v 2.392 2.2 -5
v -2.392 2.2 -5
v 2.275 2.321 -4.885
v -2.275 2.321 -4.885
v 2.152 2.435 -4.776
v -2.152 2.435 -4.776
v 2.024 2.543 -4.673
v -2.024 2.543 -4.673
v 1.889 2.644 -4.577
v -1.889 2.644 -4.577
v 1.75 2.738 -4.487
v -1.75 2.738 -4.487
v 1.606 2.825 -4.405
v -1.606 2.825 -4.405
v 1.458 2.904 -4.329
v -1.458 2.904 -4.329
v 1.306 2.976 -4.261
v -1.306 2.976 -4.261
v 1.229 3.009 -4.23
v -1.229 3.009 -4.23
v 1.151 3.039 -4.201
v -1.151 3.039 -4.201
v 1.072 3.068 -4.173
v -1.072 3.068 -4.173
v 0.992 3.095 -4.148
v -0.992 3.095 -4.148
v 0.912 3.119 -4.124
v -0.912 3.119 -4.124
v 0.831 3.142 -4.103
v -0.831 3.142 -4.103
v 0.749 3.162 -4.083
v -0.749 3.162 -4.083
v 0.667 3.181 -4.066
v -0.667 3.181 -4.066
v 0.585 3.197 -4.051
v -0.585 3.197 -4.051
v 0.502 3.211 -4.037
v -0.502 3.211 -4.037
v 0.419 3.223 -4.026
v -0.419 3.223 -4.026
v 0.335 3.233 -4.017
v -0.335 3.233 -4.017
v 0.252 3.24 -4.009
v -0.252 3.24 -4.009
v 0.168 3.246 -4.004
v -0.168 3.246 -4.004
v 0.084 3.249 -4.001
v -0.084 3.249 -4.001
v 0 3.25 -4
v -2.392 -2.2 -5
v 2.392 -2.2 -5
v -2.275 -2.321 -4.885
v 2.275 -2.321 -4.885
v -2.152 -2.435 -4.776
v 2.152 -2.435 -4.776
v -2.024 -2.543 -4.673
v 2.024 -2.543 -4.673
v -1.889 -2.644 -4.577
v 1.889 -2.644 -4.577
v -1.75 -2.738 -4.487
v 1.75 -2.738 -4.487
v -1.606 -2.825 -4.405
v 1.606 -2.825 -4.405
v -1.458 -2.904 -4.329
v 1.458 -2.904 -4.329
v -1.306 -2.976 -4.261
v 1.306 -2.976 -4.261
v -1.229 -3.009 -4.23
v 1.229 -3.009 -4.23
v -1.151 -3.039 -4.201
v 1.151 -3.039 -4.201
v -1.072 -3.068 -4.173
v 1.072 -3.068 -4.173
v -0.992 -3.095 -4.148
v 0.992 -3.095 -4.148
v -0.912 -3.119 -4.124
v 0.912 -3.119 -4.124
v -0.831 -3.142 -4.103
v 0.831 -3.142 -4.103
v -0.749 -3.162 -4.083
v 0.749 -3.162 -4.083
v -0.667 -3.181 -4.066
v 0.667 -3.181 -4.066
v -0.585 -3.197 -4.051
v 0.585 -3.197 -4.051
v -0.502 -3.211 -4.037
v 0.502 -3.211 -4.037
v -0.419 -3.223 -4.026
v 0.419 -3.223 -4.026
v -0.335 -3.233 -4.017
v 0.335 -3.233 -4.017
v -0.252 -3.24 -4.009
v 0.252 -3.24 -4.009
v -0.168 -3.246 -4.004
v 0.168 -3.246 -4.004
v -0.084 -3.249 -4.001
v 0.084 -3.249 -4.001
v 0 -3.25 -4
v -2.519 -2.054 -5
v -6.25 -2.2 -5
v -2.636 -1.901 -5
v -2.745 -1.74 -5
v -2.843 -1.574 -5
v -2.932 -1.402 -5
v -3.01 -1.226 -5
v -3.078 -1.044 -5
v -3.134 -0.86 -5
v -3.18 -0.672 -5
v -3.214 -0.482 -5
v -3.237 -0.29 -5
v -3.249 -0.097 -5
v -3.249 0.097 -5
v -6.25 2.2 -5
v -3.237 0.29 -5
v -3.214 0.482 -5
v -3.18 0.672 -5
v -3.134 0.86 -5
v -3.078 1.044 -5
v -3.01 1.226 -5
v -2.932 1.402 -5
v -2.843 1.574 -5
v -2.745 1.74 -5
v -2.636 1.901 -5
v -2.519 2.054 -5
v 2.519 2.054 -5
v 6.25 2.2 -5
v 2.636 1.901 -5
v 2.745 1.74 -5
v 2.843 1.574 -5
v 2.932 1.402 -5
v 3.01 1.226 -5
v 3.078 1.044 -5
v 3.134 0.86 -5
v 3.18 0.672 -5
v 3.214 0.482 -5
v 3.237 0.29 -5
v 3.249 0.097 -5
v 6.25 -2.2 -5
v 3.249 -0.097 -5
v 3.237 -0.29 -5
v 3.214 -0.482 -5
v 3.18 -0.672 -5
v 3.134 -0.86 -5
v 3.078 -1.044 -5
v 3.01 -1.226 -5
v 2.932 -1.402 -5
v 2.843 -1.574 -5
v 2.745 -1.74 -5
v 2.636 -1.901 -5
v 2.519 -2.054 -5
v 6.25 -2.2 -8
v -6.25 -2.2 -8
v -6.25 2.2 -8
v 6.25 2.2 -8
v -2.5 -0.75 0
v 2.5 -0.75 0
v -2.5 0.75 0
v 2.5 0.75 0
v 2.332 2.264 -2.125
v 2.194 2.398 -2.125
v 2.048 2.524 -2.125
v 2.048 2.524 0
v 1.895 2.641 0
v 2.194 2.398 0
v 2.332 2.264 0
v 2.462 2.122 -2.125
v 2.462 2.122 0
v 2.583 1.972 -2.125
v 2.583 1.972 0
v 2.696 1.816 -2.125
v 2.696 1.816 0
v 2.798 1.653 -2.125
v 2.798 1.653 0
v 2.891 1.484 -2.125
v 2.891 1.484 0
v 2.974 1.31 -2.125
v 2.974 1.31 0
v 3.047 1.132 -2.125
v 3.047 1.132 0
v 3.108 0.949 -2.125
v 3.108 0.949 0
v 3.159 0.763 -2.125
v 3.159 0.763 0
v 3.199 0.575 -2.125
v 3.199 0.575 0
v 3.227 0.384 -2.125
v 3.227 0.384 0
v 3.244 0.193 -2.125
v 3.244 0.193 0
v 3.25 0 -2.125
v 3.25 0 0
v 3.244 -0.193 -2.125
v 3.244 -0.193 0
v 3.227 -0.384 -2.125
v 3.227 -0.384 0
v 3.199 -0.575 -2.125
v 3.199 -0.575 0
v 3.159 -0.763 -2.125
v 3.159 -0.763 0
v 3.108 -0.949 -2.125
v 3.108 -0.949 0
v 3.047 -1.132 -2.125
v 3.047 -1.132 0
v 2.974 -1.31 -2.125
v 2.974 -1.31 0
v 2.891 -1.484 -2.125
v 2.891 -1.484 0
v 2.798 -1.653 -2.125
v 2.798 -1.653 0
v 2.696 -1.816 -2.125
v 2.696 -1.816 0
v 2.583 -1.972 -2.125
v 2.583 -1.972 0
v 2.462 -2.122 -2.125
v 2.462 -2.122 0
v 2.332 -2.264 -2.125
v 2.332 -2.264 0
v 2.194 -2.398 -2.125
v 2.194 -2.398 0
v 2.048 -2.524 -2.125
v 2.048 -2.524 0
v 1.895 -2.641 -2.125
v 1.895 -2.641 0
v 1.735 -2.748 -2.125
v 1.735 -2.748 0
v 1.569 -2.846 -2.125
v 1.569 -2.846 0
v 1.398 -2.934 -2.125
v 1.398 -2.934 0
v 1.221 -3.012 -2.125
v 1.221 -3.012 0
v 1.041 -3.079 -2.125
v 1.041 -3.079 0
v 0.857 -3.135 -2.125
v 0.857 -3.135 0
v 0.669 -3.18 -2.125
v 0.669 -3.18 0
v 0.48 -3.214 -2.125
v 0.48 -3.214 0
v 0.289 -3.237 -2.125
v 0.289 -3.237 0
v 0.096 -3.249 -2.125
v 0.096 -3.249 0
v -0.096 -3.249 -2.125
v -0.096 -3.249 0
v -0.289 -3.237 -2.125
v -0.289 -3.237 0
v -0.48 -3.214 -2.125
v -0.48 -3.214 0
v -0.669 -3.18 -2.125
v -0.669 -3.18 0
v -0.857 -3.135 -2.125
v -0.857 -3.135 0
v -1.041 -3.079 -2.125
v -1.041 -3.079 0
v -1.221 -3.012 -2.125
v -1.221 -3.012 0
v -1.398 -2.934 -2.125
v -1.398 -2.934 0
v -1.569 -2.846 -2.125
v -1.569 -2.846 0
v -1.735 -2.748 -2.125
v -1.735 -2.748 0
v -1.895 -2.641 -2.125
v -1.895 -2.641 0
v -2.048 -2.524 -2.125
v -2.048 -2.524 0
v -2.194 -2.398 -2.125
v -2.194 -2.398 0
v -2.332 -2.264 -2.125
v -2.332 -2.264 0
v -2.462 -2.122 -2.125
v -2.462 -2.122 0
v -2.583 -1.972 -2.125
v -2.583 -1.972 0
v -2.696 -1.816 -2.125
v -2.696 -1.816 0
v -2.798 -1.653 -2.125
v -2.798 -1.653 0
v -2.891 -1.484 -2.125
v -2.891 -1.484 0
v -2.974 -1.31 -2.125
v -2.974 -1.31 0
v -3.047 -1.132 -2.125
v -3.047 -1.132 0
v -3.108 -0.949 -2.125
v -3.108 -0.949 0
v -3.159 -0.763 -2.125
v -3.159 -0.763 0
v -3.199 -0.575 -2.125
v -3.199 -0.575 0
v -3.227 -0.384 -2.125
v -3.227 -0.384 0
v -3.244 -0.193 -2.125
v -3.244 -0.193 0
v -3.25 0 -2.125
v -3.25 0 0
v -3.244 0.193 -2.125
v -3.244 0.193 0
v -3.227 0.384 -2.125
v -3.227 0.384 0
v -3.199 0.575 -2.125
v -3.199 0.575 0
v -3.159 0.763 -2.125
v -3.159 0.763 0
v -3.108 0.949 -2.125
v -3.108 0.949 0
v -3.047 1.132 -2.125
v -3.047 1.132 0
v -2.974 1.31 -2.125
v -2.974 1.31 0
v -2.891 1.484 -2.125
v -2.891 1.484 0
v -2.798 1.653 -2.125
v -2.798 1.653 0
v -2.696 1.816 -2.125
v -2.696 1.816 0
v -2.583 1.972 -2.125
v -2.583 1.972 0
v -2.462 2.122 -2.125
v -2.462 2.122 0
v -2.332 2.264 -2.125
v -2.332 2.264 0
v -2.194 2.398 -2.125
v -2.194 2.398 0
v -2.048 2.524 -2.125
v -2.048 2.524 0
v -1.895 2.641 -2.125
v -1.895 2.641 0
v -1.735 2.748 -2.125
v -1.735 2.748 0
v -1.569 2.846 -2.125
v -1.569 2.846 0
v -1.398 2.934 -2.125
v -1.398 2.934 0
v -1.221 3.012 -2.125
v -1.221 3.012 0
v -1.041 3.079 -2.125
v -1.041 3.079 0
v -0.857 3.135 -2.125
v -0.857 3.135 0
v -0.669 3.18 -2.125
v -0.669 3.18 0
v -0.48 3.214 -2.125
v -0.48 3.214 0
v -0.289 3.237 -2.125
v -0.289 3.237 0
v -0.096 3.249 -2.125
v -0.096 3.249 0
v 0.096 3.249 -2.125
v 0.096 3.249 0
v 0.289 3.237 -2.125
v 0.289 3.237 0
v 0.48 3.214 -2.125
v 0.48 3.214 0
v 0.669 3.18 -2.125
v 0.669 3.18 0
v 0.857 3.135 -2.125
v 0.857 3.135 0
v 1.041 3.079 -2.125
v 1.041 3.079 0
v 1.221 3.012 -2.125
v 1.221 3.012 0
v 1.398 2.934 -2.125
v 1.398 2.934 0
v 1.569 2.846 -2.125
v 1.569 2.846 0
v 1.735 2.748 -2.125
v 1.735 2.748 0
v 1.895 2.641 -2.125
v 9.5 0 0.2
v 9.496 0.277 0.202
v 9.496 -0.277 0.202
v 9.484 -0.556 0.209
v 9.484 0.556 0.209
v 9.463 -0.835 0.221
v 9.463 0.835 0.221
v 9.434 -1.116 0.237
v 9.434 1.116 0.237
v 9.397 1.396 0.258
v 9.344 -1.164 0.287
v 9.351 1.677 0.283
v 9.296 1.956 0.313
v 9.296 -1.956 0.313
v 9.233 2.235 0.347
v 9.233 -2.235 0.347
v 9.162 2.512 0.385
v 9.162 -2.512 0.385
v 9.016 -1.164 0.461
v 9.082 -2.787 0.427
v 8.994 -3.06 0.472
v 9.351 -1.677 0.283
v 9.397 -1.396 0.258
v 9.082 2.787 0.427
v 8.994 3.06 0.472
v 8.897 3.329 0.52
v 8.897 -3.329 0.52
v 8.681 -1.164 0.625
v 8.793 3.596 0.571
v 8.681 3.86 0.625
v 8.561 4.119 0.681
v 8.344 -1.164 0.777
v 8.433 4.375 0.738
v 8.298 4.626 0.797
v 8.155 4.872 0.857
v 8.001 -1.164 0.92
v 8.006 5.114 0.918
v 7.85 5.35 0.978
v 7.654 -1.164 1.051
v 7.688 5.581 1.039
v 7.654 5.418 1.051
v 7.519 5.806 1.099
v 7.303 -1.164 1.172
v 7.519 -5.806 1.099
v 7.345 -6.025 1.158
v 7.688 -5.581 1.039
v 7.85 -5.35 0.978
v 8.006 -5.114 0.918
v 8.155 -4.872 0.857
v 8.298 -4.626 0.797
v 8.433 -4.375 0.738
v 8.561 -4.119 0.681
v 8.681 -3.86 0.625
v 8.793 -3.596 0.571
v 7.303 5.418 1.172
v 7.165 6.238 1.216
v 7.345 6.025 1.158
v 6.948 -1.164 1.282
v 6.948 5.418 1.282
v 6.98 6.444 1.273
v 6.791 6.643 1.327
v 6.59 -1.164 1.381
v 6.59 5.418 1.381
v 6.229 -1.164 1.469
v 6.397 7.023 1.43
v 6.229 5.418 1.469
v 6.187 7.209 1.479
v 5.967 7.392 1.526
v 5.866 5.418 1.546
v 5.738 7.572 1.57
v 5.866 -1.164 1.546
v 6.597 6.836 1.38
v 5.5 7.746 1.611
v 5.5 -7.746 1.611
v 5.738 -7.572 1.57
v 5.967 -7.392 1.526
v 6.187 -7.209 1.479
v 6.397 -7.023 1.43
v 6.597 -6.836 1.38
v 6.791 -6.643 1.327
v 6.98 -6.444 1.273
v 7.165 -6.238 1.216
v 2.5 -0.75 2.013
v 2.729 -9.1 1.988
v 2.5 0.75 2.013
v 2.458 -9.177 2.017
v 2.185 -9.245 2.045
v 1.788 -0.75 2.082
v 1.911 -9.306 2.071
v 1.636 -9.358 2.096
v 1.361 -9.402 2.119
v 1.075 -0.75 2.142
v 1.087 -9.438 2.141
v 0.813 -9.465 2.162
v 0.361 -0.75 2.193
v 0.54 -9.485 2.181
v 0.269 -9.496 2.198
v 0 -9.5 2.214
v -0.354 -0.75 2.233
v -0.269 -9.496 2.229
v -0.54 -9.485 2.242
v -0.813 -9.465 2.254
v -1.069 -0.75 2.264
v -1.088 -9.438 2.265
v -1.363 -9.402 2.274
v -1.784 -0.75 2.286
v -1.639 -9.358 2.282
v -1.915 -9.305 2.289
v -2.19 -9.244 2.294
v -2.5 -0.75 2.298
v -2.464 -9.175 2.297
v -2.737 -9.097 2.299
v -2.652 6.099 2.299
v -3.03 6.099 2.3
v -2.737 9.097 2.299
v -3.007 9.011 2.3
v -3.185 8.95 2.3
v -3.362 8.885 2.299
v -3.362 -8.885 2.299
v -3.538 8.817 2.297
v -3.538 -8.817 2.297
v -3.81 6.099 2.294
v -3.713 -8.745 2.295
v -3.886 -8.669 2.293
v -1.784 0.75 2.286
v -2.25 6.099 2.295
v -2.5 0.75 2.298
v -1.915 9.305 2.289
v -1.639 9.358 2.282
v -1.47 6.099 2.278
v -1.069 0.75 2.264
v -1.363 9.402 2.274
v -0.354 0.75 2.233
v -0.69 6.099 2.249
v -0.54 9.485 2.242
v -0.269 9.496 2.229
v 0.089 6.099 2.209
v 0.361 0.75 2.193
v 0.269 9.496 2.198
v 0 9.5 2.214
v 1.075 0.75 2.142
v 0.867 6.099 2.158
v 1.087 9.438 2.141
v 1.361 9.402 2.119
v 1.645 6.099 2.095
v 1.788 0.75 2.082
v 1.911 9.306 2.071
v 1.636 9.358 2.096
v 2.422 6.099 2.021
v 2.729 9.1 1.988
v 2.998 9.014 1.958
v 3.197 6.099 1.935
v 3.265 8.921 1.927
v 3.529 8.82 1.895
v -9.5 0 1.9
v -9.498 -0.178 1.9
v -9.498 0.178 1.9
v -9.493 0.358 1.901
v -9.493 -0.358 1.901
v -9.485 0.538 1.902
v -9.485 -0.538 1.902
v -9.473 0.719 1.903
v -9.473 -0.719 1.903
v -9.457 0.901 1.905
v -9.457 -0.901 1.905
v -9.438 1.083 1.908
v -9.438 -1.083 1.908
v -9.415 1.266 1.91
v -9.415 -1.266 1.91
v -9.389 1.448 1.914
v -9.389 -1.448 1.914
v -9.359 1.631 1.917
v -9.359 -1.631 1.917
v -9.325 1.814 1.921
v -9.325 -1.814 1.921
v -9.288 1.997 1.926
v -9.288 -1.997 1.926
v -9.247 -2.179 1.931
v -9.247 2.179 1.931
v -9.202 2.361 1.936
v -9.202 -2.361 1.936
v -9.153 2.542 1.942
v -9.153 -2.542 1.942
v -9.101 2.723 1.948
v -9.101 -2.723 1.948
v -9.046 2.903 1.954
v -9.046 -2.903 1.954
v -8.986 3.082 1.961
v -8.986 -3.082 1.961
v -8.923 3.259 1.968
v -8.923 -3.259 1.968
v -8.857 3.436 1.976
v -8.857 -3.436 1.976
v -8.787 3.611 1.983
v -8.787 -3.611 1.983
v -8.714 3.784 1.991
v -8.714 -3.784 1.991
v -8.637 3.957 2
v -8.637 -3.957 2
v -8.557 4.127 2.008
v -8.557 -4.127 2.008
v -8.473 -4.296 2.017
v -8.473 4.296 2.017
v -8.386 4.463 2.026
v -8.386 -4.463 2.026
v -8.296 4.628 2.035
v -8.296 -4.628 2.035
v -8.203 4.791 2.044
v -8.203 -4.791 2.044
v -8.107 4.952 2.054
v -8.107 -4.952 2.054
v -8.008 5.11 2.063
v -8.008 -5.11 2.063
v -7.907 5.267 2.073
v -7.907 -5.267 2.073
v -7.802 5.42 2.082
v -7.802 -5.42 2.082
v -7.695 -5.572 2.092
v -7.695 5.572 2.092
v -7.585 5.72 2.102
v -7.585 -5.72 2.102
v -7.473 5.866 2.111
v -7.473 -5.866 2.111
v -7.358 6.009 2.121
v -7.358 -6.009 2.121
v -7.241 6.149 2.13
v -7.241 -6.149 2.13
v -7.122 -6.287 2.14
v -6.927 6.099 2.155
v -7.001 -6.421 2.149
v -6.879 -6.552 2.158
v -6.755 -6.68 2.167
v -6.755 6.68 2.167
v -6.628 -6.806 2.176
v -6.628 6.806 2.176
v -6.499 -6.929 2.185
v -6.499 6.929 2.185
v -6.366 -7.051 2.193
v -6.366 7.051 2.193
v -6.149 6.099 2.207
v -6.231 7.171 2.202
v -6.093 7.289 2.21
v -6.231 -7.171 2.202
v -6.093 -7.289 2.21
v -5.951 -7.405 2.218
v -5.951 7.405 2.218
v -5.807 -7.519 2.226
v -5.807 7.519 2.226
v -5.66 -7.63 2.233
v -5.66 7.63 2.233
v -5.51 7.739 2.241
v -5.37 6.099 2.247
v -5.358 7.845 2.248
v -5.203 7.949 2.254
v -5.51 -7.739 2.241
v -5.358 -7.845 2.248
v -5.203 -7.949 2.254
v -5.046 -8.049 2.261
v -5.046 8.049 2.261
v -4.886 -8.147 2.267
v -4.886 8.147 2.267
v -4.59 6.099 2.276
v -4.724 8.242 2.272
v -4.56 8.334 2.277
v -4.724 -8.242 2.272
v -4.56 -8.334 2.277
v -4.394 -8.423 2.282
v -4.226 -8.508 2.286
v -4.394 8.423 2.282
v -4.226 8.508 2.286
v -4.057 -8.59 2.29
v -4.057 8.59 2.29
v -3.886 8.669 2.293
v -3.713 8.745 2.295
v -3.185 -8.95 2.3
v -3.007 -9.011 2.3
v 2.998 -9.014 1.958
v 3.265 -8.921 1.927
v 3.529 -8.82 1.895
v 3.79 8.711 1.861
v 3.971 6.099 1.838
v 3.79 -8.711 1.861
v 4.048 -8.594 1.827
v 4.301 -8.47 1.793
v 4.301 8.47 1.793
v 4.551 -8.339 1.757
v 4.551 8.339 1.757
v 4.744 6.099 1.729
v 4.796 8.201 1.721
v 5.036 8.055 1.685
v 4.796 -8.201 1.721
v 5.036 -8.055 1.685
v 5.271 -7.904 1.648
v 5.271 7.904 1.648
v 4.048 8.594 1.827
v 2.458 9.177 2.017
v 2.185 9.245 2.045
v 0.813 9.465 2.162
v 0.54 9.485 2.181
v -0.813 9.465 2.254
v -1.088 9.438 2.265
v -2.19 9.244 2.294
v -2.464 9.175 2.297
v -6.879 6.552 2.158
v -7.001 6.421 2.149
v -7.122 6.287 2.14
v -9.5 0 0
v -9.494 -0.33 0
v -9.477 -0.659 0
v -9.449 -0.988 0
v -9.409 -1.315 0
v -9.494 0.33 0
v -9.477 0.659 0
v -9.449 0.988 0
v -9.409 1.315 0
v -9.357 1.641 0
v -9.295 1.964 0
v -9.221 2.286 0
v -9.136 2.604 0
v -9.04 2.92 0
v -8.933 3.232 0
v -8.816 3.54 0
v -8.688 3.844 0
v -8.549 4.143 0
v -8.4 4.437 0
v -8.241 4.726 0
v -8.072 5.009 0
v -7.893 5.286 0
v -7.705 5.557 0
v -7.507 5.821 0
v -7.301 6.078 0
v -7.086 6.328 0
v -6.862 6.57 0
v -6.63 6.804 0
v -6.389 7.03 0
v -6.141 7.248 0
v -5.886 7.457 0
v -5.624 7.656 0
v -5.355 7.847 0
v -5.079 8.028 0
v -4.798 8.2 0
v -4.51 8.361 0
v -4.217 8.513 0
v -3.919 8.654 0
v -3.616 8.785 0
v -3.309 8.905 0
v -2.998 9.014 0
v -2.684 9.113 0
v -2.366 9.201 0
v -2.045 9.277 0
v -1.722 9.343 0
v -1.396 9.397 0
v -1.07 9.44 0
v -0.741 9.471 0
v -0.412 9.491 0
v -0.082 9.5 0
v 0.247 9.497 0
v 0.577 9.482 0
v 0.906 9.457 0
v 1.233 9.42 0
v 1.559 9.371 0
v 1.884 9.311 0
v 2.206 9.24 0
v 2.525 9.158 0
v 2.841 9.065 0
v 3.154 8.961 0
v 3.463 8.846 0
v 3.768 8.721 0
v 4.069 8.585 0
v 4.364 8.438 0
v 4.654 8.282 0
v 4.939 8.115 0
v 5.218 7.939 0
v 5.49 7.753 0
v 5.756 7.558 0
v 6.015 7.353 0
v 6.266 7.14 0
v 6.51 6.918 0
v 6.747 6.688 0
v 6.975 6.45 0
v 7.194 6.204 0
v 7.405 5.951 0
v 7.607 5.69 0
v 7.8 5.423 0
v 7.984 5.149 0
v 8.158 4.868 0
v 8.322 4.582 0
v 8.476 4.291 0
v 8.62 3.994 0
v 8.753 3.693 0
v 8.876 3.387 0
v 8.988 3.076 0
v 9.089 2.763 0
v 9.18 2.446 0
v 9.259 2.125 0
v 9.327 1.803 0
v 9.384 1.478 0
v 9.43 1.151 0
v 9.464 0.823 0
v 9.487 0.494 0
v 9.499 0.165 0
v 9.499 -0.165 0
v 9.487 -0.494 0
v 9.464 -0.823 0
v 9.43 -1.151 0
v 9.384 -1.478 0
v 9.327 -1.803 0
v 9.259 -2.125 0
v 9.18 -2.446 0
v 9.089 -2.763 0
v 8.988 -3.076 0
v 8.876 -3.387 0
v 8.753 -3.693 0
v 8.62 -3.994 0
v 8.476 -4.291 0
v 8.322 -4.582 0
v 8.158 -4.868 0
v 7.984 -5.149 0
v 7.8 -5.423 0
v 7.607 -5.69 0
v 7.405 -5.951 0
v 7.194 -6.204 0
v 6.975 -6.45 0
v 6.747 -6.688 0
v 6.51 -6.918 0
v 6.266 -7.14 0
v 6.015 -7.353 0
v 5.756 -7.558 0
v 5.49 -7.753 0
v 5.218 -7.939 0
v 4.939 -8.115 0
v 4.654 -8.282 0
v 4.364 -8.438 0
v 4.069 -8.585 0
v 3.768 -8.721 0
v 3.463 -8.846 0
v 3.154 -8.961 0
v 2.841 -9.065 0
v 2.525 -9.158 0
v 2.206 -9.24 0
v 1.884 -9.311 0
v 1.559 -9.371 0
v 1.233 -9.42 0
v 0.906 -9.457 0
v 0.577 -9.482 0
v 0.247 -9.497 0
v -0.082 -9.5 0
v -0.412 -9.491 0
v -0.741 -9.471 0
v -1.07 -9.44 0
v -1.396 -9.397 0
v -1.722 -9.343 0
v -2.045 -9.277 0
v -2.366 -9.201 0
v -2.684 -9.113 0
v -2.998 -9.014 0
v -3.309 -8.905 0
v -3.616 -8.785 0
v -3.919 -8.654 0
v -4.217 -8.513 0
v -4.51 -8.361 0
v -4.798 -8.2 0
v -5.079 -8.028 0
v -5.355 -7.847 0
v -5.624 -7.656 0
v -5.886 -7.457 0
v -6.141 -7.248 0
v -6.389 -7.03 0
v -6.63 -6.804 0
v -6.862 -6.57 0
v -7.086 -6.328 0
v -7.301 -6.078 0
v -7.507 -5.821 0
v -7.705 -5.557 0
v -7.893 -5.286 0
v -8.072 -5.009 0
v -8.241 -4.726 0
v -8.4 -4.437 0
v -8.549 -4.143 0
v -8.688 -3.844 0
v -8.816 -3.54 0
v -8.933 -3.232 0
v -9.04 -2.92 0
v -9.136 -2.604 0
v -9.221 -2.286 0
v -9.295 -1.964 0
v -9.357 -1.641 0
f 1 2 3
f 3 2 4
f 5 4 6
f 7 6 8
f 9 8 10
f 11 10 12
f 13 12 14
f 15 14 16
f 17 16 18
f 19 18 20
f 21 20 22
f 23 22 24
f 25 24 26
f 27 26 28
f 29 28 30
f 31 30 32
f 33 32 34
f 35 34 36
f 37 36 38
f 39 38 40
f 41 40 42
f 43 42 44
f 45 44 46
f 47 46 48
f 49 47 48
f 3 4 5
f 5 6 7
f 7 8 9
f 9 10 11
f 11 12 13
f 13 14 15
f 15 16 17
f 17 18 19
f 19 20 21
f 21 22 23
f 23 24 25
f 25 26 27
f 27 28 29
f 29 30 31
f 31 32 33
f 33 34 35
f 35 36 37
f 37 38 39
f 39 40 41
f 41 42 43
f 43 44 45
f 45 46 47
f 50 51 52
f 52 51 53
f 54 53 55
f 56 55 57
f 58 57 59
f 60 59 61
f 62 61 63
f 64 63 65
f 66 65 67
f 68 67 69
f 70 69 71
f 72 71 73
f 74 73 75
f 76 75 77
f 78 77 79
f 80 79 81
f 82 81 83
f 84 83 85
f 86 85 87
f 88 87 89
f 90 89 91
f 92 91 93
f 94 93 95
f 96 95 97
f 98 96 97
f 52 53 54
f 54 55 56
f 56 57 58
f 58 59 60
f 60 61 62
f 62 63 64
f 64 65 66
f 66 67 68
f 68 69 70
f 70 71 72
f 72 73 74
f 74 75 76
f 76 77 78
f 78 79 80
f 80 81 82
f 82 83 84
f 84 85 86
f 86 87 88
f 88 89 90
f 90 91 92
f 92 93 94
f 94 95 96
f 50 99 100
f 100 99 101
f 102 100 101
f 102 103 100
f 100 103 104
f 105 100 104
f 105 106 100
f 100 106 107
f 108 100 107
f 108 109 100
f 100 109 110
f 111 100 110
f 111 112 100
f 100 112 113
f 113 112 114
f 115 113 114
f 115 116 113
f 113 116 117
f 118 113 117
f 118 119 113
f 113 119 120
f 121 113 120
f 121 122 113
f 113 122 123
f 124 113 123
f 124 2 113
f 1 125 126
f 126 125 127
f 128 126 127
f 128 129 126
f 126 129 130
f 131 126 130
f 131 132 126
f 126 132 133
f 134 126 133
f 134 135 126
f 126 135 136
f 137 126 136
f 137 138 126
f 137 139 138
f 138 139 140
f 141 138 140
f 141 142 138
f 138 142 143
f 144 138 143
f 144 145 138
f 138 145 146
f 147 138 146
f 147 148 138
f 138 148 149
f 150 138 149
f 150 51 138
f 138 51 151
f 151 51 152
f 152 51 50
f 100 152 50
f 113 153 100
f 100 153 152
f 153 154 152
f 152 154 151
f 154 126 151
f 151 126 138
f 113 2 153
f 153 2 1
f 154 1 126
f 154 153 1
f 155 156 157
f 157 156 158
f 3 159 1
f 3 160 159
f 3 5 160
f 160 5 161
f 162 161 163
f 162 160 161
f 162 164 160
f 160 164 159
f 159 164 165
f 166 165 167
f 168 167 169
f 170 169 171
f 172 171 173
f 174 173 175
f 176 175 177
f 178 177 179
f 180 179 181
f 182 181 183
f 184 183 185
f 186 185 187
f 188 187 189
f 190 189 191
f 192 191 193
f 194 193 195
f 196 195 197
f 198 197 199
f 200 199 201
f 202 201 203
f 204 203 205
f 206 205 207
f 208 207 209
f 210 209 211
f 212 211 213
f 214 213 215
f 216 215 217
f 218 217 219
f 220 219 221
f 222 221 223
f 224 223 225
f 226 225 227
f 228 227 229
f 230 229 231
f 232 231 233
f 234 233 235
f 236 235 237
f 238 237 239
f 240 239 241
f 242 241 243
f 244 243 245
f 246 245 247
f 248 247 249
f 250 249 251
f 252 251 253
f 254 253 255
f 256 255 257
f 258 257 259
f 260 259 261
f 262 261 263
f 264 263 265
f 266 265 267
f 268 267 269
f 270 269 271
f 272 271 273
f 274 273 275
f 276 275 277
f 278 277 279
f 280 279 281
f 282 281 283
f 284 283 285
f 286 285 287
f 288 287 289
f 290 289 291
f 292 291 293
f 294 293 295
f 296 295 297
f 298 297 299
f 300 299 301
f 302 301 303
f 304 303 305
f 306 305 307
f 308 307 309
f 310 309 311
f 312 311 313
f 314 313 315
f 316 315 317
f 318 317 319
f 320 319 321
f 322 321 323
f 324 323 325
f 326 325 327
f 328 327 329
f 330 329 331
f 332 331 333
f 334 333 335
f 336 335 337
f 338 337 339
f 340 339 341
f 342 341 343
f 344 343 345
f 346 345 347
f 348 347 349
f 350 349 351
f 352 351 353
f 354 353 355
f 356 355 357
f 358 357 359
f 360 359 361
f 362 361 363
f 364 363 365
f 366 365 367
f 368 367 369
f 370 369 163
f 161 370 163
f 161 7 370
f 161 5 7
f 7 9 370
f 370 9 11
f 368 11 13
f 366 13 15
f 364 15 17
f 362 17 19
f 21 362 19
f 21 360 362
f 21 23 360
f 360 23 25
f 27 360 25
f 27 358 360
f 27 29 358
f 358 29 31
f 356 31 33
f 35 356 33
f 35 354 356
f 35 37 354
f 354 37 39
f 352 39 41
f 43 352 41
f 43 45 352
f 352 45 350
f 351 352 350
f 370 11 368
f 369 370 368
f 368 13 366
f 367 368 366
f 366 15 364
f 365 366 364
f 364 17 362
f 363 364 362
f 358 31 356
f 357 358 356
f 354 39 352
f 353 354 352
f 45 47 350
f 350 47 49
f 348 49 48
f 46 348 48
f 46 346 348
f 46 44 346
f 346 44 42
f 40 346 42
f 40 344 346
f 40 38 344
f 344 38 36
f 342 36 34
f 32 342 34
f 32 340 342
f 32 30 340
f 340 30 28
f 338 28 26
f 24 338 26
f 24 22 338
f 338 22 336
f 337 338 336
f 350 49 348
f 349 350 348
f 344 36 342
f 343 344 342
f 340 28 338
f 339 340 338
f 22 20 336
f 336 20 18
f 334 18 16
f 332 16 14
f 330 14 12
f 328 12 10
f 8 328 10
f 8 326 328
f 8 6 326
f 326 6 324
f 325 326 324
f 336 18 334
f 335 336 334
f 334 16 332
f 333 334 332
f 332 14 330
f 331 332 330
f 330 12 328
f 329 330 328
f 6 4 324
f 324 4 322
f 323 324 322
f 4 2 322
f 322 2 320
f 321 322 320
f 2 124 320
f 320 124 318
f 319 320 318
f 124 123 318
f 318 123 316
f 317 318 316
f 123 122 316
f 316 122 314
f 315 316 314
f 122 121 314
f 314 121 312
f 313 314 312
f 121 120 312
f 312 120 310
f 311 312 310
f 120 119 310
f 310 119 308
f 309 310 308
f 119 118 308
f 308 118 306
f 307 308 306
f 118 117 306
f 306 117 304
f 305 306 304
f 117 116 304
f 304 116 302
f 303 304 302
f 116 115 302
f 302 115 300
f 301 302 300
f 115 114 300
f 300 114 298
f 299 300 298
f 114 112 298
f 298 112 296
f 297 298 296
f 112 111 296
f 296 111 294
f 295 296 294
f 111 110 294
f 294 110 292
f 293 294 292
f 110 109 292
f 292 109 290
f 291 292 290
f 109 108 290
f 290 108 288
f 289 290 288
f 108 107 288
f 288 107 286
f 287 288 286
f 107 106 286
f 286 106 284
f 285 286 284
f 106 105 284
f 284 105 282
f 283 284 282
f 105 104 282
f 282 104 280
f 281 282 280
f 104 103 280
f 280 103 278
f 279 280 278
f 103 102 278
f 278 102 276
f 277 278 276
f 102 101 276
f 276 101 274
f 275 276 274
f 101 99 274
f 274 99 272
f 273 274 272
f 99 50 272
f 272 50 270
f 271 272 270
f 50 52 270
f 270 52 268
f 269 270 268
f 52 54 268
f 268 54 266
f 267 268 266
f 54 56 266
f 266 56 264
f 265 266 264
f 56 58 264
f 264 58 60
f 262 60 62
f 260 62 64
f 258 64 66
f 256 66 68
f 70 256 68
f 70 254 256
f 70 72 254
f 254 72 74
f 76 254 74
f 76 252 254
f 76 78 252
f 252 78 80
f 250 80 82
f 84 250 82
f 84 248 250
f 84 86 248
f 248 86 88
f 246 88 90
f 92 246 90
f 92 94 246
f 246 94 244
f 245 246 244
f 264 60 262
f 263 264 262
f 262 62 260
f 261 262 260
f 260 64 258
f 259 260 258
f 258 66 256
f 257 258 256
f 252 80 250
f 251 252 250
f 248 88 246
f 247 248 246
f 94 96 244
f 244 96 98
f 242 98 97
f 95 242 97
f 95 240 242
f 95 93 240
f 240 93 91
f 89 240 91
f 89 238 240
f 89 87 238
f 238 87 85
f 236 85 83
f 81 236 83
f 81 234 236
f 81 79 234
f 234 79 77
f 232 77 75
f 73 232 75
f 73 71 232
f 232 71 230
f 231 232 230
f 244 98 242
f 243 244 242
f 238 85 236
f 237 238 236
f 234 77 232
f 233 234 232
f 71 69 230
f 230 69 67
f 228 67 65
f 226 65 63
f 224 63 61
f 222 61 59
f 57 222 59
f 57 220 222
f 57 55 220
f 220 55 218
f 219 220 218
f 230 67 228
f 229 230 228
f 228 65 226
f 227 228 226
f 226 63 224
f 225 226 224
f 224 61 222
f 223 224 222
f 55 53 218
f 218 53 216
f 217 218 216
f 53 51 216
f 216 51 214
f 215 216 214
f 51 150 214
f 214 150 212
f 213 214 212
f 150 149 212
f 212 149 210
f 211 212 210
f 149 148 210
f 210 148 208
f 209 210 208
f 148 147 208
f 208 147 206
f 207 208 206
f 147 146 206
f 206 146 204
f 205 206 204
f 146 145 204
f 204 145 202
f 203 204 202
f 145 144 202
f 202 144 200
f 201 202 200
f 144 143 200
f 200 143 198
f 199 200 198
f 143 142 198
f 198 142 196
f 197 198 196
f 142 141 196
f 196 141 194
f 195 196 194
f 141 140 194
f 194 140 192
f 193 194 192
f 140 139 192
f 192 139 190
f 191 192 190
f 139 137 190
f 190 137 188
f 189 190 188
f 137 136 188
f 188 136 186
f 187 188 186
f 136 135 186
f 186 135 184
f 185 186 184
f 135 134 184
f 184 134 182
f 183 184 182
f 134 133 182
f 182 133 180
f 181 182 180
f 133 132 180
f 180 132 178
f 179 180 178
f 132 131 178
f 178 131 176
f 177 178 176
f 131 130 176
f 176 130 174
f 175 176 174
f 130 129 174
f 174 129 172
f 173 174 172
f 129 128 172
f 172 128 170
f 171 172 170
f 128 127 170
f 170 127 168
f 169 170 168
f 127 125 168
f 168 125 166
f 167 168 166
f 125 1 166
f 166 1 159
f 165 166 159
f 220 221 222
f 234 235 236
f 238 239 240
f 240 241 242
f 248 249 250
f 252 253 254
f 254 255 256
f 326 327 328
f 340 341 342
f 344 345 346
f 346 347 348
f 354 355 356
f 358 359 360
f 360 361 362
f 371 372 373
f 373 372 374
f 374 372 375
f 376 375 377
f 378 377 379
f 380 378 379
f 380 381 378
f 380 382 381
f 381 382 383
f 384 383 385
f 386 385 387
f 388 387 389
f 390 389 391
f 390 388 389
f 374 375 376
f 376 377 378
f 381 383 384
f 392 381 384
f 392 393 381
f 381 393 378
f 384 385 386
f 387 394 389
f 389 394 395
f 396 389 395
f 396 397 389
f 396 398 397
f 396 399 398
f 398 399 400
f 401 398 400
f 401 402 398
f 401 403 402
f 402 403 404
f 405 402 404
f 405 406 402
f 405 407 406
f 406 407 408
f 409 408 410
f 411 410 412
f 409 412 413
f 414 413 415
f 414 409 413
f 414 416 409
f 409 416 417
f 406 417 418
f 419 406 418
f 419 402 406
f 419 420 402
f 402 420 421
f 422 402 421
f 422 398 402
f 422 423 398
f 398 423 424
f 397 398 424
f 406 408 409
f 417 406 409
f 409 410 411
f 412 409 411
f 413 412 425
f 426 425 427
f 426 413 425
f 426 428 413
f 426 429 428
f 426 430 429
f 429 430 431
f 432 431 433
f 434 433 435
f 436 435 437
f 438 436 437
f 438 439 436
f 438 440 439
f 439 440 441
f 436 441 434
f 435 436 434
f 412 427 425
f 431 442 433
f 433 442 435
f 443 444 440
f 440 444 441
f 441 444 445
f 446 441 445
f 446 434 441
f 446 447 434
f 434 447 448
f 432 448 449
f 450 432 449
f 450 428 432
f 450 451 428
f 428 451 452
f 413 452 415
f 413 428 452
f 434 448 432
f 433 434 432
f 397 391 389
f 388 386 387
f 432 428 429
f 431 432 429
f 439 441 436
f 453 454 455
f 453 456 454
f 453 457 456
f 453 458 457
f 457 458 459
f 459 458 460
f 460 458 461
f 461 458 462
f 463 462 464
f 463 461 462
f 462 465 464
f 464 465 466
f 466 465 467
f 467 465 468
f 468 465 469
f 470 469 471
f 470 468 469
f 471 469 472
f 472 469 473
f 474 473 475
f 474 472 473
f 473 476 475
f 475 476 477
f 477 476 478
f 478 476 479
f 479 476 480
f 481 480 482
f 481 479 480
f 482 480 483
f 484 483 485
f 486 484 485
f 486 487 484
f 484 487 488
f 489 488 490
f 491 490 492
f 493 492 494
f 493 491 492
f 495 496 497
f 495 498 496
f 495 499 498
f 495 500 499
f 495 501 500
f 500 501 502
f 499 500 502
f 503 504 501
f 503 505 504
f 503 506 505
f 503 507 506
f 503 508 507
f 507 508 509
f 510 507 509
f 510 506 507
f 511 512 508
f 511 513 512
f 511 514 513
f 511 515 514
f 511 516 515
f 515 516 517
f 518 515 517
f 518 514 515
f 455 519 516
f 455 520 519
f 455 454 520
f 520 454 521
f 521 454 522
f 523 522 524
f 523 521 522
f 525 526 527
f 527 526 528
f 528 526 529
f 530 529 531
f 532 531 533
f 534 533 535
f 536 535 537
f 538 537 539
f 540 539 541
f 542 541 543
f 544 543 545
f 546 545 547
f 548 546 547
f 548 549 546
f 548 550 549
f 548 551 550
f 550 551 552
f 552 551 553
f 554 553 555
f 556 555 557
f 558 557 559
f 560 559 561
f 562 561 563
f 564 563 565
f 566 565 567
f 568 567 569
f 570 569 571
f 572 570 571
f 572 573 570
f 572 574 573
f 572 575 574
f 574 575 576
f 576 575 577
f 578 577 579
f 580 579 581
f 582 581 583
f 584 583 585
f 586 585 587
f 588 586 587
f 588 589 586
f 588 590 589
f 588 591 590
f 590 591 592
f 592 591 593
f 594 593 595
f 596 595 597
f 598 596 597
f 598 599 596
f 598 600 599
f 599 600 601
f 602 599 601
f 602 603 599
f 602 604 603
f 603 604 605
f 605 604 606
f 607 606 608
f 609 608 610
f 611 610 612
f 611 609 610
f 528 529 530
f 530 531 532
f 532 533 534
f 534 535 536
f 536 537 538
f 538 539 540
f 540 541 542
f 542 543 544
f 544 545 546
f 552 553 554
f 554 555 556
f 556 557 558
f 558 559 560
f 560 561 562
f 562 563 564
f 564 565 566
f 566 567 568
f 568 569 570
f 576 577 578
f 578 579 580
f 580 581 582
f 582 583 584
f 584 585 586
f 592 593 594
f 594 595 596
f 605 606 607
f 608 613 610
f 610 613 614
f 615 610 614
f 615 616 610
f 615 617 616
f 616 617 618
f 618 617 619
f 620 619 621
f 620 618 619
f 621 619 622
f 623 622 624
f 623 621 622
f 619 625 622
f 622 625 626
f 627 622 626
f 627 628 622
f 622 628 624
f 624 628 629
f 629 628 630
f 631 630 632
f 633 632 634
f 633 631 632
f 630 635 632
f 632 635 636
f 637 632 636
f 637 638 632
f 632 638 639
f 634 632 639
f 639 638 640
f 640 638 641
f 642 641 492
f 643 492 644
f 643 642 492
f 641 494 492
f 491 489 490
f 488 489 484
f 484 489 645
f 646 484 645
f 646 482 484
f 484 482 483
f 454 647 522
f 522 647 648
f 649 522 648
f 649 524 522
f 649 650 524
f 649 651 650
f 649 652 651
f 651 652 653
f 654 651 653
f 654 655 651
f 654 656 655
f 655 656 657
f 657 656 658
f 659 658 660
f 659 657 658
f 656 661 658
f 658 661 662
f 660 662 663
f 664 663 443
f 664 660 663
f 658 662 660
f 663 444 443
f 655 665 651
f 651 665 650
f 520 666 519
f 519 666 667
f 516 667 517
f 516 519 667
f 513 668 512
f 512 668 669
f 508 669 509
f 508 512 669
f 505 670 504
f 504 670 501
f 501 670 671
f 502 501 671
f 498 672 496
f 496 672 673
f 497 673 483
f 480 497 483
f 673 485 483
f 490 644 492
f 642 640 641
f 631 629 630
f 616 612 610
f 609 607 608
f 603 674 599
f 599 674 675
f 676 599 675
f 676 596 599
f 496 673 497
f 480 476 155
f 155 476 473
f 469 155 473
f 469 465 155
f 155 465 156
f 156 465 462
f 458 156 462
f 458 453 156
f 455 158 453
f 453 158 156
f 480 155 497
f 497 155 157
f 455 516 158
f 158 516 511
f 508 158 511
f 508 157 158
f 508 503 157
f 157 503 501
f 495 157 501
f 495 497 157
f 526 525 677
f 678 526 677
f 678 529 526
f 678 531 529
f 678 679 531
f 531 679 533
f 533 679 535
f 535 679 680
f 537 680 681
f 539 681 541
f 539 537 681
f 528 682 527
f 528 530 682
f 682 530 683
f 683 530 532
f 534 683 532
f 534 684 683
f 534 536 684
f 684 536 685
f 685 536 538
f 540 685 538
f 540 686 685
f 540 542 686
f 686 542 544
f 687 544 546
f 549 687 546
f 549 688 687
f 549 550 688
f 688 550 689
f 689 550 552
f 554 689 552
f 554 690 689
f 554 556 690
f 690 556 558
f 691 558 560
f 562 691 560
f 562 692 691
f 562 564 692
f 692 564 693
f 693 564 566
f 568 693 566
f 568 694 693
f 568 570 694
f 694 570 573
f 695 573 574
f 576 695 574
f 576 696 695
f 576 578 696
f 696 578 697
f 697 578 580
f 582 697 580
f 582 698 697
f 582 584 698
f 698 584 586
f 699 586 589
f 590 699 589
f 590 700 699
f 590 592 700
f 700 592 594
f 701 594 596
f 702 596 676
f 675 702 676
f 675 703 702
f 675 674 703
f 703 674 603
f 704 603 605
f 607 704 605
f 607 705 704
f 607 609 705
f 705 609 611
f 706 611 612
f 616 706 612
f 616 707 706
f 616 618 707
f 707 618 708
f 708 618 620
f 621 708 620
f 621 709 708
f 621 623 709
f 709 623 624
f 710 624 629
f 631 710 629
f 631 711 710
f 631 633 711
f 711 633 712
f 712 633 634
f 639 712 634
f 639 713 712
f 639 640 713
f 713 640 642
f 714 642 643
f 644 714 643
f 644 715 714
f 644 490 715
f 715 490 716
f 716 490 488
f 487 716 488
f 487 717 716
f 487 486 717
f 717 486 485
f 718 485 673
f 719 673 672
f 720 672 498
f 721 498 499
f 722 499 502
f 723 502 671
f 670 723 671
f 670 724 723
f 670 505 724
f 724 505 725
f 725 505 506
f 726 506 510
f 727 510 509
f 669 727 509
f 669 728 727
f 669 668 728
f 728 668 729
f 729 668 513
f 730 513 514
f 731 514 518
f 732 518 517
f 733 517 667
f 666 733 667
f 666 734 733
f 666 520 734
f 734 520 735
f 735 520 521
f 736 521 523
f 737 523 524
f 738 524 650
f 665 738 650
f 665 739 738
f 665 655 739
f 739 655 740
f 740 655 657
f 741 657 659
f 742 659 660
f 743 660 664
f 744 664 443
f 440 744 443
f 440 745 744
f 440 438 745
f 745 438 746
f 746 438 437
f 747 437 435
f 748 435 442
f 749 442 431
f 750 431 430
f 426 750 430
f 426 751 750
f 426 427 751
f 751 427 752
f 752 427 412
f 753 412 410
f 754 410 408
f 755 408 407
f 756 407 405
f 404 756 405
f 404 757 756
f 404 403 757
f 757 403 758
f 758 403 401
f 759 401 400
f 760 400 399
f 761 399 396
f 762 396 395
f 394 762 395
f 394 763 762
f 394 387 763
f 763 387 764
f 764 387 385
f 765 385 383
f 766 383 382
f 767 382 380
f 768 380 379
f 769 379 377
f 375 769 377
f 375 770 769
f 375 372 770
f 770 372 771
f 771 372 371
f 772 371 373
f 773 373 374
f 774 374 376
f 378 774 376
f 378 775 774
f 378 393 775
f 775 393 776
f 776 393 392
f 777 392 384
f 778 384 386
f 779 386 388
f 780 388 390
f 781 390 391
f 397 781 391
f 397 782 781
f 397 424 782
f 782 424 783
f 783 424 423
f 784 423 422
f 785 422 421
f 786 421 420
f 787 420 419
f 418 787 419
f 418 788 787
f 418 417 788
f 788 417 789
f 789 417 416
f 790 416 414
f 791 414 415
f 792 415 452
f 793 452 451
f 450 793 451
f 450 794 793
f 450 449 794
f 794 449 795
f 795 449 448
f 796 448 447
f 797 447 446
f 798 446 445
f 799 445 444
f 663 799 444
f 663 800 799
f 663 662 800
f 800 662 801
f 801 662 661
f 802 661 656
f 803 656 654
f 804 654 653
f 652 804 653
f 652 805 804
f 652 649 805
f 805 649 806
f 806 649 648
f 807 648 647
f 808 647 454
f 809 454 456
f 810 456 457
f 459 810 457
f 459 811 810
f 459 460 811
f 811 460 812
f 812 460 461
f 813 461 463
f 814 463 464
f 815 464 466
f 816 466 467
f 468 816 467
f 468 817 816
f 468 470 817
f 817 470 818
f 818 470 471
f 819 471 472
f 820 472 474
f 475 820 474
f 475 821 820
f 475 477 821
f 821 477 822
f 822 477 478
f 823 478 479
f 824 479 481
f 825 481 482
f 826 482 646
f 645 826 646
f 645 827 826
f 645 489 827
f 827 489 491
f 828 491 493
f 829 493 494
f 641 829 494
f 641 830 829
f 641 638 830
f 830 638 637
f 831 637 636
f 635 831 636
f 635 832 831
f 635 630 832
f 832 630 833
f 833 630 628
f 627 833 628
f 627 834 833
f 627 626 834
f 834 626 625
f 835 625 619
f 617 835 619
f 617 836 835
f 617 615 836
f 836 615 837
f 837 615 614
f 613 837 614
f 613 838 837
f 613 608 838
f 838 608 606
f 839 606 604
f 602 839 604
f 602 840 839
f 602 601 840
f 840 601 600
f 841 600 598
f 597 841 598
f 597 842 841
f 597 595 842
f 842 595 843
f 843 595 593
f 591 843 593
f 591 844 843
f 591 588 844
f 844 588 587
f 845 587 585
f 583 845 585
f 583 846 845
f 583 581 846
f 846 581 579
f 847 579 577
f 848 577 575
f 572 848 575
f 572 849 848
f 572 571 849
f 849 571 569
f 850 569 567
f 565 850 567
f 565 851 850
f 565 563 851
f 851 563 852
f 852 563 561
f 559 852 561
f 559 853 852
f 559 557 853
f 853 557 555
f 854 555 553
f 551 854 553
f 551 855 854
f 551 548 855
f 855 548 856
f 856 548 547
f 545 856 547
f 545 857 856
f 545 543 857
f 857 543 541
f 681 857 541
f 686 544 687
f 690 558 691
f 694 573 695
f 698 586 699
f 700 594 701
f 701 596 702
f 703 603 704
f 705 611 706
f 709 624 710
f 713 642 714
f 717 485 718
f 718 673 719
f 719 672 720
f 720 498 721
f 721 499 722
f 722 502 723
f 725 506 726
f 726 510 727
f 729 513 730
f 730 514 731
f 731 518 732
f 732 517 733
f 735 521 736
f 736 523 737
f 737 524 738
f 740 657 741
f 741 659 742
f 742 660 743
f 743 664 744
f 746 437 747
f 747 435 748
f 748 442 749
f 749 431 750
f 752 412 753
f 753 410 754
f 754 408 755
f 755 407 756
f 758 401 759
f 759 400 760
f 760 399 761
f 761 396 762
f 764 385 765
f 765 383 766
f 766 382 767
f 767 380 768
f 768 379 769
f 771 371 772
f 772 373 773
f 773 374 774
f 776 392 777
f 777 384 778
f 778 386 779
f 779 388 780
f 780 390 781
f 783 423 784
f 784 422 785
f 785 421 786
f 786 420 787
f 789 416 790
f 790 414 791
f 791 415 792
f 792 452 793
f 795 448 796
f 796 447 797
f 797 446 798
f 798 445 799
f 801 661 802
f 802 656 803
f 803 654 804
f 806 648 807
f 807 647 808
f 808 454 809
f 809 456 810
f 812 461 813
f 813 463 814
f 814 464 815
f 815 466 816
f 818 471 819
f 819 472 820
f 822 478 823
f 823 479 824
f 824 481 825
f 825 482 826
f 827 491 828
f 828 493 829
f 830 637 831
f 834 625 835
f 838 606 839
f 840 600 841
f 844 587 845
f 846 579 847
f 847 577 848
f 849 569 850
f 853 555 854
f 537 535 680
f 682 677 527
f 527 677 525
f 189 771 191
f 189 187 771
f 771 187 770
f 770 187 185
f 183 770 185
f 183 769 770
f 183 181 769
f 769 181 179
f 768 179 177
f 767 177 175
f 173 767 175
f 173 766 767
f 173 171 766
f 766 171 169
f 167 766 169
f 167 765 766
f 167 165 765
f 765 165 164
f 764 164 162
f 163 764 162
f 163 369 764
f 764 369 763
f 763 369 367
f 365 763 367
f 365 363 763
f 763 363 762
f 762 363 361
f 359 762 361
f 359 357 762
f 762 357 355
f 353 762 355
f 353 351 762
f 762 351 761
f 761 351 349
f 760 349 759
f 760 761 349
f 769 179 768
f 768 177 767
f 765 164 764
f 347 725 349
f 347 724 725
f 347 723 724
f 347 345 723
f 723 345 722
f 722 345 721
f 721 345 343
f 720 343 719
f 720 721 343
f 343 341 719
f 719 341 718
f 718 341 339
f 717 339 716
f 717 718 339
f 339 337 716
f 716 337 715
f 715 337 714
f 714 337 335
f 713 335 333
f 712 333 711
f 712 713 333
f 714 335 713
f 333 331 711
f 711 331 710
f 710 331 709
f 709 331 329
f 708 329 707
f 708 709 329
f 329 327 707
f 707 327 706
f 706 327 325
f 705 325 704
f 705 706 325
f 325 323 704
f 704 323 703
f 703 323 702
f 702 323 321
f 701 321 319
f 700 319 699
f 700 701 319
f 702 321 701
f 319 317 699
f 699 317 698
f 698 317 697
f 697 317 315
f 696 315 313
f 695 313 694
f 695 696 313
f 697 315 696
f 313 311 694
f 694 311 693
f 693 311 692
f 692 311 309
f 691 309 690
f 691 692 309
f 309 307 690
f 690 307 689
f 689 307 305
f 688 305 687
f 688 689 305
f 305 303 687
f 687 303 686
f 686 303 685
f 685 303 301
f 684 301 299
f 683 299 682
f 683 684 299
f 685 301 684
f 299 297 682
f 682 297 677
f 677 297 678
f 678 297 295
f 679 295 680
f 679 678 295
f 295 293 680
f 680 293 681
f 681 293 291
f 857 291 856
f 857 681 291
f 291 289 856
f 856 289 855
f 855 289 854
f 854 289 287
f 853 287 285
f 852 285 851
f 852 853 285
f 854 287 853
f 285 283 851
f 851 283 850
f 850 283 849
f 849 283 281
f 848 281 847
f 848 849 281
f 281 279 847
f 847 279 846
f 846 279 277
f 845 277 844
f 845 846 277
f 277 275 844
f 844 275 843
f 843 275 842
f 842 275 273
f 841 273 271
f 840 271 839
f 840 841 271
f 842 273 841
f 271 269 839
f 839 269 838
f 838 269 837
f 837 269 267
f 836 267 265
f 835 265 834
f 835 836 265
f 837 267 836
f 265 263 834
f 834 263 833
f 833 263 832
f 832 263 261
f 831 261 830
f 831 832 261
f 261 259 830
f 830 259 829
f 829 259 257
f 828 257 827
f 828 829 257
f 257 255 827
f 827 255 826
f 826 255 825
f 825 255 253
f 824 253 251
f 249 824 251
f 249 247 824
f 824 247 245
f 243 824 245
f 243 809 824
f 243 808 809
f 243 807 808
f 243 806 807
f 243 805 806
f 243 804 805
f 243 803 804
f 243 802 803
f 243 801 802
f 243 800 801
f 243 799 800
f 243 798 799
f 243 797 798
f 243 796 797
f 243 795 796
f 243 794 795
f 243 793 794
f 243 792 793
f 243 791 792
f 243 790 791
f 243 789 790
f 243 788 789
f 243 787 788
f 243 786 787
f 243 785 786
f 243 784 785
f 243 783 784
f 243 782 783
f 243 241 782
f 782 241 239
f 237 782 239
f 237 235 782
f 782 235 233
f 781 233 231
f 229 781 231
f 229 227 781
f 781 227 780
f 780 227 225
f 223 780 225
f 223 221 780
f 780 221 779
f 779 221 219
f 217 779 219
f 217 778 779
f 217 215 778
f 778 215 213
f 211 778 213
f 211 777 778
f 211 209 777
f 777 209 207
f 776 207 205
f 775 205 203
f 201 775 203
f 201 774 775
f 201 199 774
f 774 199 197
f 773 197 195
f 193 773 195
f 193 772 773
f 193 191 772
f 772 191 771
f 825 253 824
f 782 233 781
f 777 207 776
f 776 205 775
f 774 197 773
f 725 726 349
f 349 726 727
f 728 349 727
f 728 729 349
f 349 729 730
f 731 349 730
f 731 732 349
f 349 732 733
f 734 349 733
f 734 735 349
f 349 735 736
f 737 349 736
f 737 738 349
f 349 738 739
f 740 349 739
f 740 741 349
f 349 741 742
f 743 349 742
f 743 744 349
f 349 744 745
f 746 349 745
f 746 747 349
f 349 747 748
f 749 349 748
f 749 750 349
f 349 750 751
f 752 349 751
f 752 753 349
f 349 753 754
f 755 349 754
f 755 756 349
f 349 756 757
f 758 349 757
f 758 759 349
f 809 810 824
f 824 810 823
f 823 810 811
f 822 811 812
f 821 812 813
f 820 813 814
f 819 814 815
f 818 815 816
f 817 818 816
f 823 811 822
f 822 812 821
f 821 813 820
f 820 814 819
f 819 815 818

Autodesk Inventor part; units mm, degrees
ref_plane "YZ Plane" through (0, 0, 0) normal (1, 0, 0) x (0, 1, 0)
ref_plane "XZ Plane" through (0, 0, 0) normal (0, 1, 0) x (-1, 0, 0)
ref_plane "XY Plane" through (0, 0, 0) normal (0, 0, 1) x (1, 0, 0)
sketch "Sketch1" plane through (0, 0, 0) normal (0, 0, 1) x (1, 0, 0)
  circle A0 centre (0, 0) radius 9.5
  line L0 (-2.5, 0.75) -> (2.5, 0.75)
  line L1 (2.5, 0.75) -> (2.5, -0.75)
  line L2 (2.5, -0.75) -> (-2.5, -0.75)
  line L3 (-2.5, -0.75) -> (-2.5, 0.75)
  line L4 (0, -0.75) -> (0, 0.75) construction
  line L5 (0, -13.3) -> (0, 13.3) construction
  line L6 (-13.3, 0) -> (13.3, 0) construction
  point P0 (2.5, 0)
  dimension "d0" = 19
  dimension "d1" = 1.5
  dimension "d2" = 5
extrude "Extrusion1" add sketch "Sketch1" along normal blind 2.3
sketch "Sketch2" plane through (0, 0, 0) normal (0, 1, 0) x (-1, 0, 0)
  line L0 (-2.5, 2.3) -> (2.5, 2.3) construction
  line L1 (2.5, 2.3) -> (-2.5, 2.3) construction
  line L2 (-9.5, 2.3) -> (9.5, 2.3) construction
  line L3 (-9.5, 2.3) -> (9.5, 2.3) construction
  line L4 (-2.5, 0) -> (2.5, 0) construction
  line L5 (2.5, 0) -> (-2.5, 0) construction
  line L6 (-9.5, 0) -> (9.5, 0) construction
  line L7 (-9.5, 0) -> (-9.5, 0.2)
  line L8 (-9.5, 0) -> (9.5, 0)
  line L9 (9.5, 0) -> (9.5, 1.9)
  arc A0 (-5.5, 1.6114) -> (-9.5, 0.2) centre (-3.57, -10.2324) ccw
  arc A1 (17.6587, 0.2303) -> (-5.5, 1.6114) centre (3.0073, -50.5943) ccw
  point P0 (0, 0)
  dimension "d5" = 12
  dimension "d6" = 0.2
  dimension "d8" = 1.9
  dimension "d9" = 4
extrude "Extrusion2" cut sketch "Sketch2" along normal through all both and the other way through all keep common part
sketch "Sketch3" plane through (0, 0, 0) normal (0, 1, 0) x (-1, 0, 0)
  line L0 (-2.5, 0) -> (2.5, 0) construction
  line L1 (2.5, 0) -> (-2.5, 0) construction
  line L2 (-9.5, 0) -> (9.5, 0) construction
  line L3 (-3.25, 0) -> (0, 0)
  line L4 (0, 0) -> (0, -5)
  line L5 (0, -5) -> (-3.25, -5)
  line L6 (-3.25, -5) -> (-3.25, 0)
  point P0 (0, 0)
  dimension "d12" = 3.25
  dimension "d13" = 5
revolve "Revolution1" add sketch "Sketch3" angle 360 about axis through (0, 0, 0) along (0, 0, -1)
sketch "Sketch4" plane through (0, 0, 0) normal (0, 1, 0) x (-1, 0, 0)
  line L0 (-6.25, -5) -> (6.25, -5)
  line L1 (6.25, -5) -> (6.25, -8)
  line L2 (6.25, -8) -> (-6.25, -8)
  line L3 (-6.25, -8) -> (-6.25, -5)
  line L4 (0, -12.0667) -> (0, 4.6989) construction
  line L5 (3.25, -5) -> (-3.25, -5) construction
  point P0 (0, 0)
  point P1 (0, -5)
  dimension "d16" = 3
  dimension "d17" = 12.5
extrude "Extrusion3" add sketch "Sketch4" along normal blind 2.2 and the other way blind 2.2
sketch "Sketch5" plane through (0, 0, 0) normal (1, 0, 0) x (0, 1, 0)
  line L0 (2.2, -5) -> (2.2, -8) construction
  line L1 (2.2, -8) -> (2.2, -5) construction
  line L2 (3.25, -5) -> (3.25, 0) construction
  line L3 (-3.25, -5) -> (-3.25, 0) construction
  line L4 (-2.2, -5) -> (-2.2, -8) construction
  line L5 (-2.2, -8) -> (-2.2, -5) construction
  line L6 (-2.2, -5) -> (-3.25, -4)
  line L7 (2.2, -5) -> (3.25, -4)
  line L8 (3.25, -4) -> (-3.25, -4)
  line L9 (-2.2, -5) -> (-3.25, -5)
  line L10 (-3.25, -5) -> (-3.25, -4)
  line L11 (2.2, -5) -> (3.25, -5)
  line L12 (3.25, -4) -> (3.25, -5)
  point P0 (0, 0)
  point P1 (2.2, -5)
  point P2 (2.2, -5)
  dimension "d23" = 1
extrude "Extrusion4" cut sketch "Sketch5" along normal through all both and the other way through all
properties part number "CRX brake light housing retainer"
